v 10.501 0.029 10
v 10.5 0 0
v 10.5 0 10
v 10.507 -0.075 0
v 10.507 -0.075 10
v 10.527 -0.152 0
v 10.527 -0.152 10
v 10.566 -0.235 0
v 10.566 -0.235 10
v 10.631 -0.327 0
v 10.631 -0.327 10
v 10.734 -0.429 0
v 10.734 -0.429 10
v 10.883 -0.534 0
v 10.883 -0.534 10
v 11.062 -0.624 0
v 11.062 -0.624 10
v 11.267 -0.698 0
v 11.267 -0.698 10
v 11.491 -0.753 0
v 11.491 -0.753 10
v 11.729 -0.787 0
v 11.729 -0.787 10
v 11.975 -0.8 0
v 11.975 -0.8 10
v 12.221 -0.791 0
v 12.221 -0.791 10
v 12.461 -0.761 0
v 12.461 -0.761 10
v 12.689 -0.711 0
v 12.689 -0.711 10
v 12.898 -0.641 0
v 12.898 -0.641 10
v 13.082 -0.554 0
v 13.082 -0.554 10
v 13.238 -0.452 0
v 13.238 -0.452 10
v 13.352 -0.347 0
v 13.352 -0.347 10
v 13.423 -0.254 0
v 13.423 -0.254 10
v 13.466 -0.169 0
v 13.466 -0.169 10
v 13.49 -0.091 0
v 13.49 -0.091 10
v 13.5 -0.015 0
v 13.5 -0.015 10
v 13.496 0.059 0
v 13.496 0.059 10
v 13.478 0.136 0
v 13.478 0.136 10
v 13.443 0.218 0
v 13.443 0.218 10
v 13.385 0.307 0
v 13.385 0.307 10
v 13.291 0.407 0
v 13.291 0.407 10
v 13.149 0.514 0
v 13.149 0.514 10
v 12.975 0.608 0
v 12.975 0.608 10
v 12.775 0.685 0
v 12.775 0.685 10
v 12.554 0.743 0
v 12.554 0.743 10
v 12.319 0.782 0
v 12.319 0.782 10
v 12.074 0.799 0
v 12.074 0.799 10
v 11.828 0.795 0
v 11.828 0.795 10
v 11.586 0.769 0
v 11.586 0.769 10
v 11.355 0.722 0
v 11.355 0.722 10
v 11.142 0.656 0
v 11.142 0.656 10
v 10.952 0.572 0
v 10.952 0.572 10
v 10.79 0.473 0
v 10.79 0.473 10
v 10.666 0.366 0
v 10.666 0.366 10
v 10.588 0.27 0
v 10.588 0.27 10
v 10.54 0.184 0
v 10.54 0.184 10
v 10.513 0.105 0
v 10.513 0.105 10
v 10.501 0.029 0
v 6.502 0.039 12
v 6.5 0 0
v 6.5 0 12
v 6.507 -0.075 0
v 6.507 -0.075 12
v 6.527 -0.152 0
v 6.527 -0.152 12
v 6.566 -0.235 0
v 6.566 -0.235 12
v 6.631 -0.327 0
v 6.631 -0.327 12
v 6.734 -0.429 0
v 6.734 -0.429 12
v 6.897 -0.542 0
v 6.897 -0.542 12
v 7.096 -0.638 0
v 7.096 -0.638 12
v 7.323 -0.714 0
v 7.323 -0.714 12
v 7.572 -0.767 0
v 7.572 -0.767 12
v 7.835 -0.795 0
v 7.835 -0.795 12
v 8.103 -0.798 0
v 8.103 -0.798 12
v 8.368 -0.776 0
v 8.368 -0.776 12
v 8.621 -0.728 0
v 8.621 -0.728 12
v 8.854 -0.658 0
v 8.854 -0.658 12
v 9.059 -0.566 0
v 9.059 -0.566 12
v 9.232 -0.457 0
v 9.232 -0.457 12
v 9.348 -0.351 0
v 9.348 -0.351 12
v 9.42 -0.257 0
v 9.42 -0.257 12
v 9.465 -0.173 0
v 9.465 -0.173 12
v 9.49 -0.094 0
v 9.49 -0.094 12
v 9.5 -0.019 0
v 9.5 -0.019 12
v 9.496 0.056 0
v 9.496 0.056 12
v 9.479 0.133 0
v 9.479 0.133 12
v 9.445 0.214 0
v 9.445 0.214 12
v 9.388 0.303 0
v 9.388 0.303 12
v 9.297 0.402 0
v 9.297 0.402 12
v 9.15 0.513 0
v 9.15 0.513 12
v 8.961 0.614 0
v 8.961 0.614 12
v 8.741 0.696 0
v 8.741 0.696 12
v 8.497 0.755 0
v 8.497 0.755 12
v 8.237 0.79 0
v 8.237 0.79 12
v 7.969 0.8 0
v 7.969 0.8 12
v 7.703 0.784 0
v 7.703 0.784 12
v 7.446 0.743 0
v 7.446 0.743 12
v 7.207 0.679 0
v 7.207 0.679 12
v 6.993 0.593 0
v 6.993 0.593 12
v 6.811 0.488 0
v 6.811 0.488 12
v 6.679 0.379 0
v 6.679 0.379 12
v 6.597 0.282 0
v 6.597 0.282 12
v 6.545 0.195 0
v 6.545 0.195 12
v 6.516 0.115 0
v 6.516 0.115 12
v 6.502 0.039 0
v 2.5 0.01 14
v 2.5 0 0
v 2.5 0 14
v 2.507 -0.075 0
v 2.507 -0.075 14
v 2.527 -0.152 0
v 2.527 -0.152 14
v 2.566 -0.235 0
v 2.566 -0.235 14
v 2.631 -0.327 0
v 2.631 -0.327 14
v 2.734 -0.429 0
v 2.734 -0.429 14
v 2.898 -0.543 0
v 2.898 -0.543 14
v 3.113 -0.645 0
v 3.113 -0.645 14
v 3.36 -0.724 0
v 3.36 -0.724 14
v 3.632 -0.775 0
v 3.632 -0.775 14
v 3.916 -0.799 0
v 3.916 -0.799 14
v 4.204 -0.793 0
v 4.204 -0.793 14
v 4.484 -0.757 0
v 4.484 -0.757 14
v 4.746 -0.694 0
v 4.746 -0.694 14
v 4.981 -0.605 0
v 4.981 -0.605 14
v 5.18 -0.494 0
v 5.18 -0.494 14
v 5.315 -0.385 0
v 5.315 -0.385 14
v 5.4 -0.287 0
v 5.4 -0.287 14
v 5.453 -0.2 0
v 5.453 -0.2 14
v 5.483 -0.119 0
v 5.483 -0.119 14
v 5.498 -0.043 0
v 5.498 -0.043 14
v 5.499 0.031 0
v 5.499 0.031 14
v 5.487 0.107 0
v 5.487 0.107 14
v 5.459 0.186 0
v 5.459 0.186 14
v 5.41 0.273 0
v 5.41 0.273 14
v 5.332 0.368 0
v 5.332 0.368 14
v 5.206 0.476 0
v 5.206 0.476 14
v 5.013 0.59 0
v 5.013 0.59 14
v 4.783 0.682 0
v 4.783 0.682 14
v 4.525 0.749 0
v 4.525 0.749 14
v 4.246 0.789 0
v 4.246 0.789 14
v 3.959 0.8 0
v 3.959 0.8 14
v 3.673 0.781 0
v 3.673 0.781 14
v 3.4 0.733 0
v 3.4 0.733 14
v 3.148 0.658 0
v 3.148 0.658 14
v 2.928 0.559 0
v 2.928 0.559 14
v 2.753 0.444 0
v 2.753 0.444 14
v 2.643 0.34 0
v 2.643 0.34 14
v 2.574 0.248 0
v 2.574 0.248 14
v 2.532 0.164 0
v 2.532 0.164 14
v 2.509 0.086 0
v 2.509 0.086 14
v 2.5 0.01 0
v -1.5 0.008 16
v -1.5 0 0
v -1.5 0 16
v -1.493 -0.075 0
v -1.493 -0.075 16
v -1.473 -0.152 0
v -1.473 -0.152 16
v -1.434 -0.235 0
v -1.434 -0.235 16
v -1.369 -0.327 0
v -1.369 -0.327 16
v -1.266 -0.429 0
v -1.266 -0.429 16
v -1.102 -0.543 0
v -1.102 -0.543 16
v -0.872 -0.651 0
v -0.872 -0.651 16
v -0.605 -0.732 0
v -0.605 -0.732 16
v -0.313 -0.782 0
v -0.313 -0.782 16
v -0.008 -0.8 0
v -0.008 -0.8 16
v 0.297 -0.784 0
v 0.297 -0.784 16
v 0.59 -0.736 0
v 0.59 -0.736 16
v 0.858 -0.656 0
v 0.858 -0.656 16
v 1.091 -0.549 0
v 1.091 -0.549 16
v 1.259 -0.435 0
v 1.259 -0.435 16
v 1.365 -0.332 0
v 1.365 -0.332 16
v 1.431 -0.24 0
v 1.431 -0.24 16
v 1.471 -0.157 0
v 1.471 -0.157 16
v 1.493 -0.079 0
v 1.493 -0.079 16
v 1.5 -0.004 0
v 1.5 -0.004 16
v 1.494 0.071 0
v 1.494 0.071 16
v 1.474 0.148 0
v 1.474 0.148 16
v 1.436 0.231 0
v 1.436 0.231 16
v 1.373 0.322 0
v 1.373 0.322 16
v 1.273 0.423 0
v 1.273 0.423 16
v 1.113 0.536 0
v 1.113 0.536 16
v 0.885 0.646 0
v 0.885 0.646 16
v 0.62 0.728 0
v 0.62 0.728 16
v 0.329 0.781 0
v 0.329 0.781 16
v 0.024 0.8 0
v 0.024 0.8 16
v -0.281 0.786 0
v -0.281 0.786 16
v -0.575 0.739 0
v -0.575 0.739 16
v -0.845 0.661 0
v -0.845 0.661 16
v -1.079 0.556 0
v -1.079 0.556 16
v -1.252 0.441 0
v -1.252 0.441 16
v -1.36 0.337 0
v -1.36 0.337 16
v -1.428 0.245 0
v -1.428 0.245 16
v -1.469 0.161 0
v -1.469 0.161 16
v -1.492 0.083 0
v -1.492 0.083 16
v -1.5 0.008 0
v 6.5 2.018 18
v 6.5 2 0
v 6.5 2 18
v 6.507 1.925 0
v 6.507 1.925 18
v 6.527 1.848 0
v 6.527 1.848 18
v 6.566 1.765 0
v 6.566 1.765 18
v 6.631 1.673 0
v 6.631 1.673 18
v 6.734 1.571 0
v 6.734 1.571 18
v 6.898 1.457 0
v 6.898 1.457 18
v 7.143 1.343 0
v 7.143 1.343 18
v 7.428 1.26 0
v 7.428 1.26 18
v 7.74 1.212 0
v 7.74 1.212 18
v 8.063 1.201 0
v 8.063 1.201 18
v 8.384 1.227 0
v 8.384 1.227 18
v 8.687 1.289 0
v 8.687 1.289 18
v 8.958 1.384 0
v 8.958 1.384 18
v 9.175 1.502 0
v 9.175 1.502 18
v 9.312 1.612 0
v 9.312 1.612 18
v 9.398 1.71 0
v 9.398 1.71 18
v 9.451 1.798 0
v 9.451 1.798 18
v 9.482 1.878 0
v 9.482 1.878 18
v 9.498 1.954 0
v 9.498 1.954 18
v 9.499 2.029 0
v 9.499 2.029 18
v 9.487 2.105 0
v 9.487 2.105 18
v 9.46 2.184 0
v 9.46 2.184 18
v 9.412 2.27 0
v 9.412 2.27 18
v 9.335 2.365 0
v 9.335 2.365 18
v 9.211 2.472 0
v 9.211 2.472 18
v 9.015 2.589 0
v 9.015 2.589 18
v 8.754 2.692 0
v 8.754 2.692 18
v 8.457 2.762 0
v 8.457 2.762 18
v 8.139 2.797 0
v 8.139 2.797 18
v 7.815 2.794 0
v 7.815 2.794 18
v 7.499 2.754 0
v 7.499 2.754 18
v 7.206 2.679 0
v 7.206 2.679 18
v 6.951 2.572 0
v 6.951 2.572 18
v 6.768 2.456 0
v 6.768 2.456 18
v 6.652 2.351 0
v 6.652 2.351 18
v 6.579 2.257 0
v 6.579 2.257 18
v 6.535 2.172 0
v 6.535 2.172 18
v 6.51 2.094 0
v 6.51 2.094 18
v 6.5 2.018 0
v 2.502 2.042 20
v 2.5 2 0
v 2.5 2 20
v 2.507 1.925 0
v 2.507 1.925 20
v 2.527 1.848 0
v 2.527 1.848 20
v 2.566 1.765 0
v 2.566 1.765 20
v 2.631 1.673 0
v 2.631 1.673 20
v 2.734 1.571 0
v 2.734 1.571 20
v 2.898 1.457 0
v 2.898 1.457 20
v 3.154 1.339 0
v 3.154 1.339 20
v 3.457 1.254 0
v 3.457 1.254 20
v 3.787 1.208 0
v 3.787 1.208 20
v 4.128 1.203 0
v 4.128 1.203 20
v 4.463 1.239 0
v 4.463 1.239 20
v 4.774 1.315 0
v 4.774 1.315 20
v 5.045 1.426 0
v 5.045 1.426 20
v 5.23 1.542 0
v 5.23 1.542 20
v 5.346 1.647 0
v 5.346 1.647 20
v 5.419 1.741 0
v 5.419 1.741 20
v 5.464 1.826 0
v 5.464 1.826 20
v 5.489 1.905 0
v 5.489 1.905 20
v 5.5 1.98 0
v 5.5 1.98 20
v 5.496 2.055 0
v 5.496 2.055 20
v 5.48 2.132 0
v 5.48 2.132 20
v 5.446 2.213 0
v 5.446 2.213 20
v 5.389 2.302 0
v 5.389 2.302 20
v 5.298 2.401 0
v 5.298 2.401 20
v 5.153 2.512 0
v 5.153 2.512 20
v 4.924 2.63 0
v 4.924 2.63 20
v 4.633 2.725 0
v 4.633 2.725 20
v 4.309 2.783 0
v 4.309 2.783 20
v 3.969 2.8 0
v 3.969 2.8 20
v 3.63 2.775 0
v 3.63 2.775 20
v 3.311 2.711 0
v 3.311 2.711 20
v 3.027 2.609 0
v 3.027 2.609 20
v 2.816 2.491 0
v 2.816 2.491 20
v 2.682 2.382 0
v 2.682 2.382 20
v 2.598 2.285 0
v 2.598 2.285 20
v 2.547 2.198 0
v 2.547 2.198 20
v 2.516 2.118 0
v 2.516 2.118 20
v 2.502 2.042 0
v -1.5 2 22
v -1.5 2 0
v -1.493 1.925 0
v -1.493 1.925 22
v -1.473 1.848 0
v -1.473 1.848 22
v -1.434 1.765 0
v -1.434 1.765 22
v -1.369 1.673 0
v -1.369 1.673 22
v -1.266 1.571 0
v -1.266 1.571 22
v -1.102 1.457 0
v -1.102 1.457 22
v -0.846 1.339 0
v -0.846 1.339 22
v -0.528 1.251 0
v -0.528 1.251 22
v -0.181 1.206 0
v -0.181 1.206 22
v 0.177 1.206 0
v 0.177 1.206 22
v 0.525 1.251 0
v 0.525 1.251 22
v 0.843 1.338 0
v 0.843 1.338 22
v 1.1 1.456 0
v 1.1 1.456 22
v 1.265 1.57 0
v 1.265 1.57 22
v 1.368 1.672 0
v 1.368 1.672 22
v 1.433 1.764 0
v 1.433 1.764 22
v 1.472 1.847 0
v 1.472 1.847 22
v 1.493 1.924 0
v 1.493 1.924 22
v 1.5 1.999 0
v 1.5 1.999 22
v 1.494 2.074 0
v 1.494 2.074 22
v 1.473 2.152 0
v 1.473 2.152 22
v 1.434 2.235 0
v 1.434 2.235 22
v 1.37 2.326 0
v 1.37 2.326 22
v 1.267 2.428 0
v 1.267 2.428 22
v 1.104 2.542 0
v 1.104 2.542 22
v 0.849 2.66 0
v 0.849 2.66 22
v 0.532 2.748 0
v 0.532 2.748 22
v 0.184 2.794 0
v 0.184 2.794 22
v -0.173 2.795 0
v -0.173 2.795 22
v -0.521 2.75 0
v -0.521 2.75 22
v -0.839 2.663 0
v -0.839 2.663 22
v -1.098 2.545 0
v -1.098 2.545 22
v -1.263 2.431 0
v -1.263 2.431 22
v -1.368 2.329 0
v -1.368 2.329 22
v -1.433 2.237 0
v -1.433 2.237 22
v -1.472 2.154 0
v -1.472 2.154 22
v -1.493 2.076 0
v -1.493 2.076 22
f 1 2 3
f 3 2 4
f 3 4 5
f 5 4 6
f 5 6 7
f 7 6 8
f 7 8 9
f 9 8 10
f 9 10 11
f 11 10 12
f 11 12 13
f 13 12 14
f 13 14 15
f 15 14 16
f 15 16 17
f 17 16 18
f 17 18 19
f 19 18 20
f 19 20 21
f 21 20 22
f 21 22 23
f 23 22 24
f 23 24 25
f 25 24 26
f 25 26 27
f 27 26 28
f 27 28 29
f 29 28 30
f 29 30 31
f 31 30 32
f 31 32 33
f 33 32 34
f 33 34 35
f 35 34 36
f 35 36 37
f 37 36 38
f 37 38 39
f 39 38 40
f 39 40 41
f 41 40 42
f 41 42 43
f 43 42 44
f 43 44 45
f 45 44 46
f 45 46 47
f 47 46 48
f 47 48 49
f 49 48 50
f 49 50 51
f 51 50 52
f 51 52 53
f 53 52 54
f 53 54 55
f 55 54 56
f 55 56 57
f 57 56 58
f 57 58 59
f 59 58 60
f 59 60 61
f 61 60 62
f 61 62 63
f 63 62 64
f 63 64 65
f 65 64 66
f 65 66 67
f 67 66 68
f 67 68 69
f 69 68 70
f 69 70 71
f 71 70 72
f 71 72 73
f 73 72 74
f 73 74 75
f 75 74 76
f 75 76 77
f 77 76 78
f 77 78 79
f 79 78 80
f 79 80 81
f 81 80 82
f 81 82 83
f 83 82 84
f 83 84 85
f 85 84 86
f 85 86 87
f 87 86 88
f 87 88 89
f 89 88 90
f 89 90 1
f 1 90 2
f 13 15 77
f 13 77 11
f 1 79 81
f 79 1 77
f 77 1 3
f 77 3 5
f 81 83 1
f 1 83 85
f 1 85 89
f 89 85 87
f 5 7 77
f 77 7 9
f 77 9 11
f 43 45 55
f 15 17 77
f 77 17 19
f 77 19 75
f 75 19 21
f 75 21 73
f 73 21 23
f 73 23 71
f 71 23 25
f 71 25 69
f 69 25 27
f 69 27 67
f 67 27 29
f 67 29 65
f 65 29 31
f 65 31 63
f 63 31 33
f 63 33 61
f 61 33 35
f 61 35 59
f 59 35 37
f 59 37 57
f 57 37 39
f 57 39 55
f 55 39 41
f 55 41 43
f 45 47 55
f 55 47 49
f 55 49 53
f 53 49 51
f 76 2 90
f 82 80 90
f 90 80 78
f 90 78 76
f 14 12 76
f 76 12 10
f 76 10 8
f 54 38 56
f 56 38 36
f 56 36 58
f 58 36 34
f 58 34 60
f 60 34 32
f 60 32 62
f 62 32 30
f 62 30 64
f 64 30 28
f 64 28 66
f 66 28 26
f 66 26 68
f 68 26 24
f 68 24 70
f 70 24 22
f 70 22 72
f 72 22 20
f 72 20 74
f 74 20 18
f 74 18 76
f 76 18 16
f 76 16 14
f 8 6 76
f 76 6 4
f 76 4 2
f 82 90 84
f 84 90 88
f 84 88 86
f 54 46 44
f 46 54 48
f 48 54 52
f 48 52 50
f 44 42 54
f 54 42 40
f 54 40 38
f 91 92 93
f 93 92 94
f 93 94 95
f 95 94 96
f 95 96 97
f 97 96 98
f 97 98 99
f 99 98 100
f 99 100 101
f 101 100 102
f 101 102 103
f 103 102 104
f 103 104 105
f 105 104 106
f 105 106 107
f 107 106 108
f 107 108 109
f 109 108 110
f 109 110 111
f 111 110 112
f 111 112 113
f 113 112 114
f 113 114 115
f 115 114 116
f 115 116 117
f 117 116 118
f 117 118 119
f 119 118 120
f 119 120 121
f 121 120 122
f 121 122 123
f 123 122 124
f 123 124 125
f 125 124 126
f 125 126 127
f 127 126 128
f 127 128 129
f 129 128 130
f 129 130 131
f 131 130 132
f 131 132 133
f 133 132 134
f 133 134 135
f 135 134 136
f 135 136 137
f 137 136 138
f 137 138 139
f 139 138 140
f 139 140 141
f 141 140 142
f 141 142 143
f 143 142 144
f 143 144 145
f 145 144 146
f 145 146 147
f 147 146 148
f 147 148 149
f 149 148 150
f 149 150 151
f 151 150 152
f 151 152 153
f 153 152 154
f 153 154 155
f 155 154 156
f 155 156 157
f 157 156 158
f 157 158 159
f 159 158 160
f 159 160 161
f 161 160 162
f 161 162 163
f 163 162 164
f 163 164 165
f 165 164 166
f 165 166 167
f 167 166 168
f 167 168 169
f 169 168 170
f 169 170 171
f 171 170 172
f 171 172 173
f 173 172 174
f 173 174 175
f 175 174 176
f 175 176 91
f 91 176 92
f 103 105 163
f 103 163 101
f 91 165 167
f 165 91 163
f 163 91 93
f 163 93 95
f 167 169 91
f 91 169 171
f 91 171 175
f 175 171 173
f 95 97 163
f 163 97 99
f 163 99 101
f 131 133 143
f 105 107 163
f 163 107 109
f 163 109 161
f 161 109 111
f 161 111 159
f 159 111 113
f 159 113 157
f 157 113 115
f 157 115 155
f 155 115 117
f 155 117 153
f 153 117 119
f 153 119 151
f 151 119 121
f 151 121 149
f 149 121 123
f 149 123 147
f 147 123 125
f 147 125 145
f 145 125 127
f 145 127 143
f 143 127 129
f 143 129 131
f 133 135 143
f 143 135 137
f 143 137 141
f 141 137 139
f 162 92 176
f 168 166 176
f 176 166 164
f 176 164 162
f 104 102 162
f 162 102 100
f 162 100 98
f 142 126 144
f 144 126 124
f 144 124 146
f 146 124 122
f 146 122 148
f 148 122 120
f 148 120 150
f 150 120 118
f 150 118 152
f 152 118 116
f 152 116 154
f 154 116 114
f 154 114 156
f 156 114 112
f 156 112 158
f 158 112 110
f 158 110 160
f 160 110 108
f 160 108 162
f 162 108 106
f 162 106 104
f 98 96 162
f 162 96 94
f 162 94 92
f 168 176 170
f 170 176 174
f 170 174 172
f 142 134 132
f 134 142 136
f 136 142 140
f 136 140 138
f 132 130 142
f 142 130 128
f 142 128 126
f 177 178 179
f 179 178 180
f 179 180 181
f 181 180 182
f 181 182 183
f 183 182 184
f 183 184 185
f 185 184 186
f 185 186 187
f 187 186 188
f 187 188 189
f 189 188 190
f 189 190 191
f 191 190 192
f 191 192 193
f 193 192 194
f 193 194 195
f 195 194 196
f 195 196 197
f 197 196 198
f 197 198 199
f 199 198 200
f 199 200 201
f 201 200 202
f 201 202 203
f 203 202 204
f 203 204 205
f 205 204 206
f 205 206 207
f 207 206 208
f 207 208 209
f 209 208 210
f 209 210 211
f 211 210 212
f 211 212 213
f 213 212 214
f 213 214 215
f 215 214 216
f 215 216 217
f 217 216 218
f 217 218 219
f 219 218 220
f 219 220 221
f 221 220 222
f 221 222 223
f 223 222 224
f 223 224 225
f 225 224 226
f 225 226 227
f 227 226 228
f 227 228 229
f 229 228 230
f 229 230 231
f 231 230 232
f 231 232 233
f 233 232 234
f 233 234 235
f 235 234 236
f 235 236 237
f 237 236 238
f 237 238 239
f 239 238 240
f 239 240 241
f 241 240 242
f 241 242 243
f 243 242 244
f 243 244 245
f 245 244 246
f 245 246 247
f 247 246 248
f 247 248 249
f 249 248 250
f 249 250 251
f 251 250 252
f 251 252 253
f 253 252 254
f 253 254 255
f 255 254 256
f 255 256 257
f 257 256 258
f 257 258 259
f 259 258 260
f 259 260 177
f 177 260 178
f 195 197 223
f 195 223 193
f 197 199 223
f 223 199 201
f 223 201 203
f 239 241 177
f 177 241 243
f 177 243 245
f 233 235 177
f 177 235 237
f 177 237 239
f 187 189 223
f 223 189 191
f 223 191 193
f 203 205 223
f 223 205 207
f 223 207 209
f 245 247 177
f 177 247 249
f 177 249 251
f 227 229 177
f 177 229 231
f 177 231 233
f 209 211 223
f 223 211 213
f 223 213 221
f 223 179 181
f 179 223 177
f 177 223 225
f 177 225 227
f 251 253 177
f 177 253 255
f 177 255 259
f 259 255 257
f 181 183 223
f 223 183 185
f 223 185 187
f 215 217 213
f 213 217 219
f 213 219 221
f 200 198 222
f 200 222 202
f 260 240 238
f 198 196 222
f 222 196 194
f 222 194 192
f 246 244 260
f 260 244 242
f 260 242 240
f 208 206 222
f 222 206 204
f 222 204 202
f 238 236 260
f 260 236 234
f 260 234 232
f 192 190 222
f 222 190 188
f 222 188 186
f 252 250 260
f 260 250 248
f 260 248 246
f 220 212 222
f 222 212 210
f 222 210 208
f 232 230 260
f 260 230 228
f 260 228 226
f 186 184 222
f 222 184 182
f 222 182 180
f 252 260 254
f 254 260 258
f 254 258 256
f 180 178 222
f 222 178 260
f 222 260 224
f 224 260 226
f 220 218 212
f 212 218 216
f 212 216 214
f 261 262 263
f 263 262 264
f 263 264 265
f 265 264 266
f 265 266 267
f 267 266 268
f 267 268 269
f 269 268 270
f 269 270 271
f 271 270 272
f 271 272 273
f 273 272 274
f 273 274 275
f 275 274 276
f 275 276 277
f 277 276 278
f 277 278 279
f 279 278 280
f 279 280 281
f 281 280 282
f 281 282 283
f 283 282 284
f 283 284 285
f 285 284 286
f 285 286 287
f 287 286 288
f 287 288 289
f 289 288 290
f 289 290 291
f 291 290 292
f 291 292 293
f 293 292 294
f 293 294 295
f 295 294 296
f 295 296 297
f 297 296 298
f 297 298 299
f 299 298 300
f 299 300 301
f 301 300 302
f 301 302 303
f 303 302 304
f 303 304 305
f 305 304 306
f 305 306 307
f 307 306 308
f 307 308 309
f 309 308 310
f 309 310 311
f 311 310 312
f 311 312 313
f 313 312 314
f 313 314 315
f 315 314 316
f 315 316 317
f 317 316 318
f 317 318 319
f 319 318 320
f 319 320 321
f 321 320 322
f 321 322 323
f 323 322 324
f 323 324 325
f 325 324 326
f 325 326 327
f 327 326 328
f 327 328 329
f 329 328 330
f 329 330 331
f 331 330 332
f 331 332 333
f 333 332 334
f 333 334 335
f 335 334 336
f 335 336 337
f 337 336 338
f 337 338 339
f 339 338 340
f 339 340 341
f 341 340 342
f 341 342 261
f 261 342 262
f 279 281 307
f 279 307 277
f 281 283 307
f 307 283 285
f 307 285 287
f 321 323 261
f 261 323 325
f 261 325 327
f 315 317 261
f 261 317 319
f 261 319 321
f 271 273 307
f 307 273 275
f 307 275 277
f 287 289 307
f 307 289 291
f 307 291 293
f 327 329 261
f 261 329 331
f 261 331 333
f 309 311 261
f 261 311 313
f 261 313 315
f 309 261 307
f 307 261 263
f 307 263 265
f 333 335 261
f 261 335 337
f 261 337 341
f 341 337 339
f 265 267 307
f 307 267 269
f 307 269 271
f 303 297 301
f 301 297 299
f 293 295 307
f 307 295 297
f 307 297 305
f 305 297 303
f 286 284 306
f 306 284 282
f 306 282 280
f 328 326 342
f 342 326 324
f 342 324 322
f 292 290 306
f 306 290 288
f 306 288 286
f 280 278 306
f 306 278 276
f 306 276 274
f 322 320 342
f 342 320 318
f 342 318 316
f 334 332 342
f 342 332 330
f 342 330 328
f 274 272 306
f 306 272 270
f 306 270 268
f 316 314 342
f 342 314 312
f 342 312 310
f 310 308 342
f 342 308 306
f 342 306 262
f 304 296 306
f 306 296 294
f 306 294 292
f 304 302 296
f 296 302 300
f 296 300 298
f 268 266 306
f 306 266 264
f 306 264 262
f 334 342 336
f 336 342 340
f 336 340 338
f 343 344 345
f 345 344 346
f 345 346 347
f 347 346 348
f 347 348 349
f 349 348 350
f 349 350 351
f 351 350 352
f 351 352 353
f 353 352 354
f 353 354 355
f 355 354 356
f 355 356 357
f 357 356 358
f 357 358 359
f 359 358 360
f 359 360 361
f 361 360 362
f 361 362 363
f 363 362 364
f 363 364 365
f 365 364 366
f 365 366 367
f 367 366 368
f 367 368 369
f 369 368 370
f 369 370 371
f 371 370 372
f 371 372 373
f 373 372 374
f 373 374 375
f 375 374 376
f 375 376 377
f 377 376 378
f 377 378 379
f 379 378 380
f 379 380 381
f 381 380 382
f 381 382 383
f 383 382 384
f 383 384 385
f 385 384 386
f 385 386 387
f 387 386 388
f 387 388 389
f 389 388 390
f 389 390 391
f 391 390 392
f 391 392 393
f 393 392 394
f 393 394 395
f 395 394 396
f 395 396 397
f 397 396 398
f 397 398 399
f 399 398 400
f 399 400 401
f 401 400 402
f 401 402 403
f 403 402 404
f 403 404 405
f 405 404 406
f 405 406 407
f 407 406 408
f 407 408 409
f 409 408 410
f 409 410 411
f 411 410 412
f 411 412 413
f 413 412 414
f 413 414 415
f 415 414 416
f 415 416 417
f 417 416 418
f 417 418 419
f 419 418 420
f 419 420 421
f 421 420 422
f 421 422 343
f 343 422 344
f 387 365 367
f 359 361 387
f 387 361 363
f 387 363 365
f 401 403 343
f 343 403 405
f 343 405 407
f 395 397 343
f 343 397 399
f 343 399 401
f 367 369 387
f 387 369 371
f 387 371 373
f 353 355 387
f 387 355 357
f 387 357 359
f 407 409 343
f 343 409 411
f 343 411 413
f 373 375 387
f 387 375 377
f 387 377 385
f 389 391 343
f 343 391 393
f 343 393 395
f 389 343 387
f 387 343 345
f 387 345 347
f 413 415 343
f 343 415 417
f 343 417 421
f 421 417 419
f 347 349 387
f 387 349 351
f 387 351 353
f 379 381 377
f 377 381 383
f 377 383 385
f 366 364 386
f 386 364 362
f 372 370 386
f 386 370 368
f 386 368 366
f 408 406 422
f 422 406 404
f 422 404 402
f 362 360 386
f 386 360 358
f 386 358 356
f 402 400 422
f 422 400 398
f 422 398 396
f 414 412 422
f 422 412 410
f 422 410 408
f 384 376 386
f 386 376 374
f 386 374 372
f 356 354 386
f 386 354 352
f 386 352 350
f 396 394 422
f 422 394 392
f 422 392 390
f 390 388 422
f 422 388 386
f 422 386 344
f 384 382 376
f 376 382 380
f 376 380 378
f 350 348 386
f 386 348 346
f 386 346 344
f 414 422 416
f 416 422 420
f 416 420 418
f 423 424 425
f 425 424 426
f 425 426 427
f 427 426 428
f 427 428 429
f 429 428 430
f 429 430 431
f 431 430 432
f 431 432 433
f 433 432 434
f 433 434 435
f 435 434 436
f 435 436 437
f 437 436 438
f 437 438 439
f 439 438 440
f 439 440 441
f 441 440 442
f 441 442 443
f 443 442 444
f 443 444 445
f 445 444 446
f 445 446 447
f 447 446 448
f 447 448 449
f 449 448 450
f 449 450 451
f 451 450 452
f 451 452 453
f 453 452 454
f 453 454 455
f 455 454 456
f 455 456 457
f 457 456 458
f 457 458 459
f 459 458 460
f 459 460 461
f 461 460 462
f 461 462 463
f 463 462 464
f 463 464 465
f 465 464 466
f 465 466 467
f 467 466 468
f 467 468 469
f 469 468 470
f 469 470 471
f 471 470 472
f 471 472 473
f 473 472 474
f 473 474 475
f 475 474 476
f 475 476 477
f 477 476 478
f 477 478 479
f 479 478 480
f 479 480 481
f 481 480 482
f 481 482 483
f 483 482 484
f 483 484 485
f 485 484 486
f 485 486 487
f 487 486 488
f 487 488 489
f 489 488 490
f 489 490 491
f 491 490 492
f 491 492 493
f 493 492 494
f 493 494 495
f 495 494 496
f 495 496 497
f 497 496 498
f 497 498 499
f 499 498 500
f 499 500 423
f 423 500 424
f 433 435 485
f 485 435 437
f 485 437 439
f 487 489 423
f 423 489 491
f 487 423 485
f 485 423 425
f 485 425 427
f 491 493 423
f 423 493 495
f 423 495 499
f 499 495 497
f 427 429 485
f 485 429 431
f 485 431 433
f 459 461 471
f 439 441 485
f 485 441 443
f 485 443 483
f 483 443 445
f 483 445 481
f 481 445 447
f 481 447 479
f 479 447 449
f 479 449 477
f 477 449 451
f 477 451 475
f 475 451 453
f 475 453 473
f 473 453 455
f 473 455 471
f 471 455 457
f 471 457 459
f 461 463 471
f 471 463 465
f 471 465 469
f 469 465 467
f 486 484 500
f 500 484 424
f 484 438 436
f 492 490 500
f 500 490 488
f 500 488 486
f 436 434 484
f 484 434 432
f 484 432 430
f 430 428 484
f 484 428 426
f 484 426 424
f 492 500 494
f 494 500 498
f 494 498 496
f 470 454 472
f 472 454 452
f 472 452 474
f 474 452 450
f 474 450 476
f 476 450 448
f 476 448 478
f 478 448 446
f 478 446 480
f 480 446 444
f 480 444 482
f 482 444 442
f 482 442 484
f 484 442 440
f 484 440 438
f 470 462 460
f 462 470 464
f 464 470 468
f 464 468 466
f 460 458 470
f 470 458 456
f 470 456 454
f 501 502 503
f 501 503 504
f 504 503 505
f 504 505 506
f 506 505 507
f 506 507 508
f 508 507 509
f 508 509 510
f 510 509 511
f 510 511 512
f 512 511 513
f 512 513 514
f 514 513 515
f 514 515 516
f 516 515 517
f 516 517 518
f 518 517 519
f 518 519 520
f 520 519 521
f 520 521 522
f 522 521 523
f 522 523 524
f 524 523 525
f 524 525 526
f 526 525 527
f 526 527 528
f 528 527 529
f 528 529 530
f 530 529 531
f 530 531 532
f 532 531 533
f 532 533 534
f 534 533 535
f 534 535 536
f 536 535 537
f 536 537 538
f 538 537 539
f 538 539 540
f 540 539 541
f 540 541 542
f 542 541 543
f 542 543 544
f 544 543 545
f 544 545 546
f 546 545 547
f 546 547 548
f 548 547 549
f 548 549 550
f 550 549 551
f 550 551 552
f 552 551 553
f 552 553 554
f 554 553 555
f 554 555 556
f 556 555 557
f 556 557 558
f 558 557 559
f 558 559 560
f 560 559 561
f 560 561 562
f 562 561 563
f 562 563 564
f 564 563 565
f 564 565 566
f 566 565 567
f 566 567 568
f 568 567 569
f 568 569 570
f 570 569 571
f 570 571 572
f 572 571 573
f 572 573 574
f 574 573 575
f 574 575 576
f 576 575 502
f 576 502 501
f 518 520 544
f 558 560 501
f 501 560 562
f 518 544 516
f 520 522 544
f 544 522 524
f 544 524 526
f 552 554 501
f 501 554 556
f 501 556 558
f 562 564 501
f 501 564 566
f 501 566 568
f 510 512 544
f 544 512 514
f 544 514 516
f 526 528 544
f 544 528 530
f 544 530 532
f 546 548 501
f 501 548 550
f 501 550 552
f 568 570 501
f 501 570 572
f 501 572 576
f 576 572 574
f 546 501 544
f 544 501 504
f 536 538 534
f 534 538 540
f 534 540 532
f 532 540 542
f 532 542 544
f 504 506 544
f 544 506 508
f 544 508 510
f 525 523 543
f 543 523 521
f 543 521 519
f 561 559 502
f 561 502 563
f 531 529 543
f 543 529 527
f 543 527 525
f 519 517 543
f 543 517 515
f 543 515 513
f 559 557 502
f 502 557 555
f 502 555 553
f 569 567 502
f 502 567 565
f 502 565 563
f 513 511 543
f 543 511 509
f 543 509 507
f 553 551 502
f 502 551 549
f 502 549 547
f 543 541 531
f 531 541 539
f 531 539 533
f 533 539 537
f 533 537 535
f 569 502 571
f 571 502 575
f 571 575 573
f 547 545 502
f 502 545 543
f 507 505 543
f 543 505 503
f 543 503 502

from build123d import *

# Parameters (mm, degrees)
SKETCH2_RX          = 1.5
SKETCH2_RY          = 0.8
BOSS_EXTRUDE1_DEPTH = 10
SKETCH2_3_RX        = 1.5
SKETCH2_3_RY        = 0.8
BOSS_EXTRUDE2_DEPTH = 12
SKETCH2_4_RX        = 1.5
SKETCH2_4_RY        = 0.8
BOSS_EXTRUDE3_DEPTH = 14
SKETCH2_5_RX        = 1.5
SKETCH2_5_RY        = 0.8
BOSS_EXTRUDE4_DEPTH = 16
SKETCH2_6_RX        = 1.5
SKETCH2_6_RY        = 0.8
BOSS_EXTRUDE5_DEPTH = 18
SKETCH2_7_RX        = 1.5
SKETCH2_7_RY        = 0.8
BOSS_EXTRUDE6_DEPTH = 20
SKETCH2_8_RX        = 1.5
SKETCH2_8_RY        = 0.8
BOSS_EXTRUDE7_DEPTH = 22


with BuildPart() as part:
    # Sketch2 → Boss-Extrude1 (new body)
    with BuildSketch(Plane.XY):
        with Locations(Location((12, 0), (0, 0, 180))):
            Ellipse(SKETCH2_RX, SKETCH2_RY)
    extrude(amount=BOSS_EXTRUDE1_DEPTH)


with BuildPart() as body_2:
    # Sketch2<3> → Boss-Extrude2 (new body)
    with BuildSketch(Plane.XY):
        with Locations(Location((8, 0), (0, 0, 180))):
            Ellipse(SKETCH2_3_RX, SKETCH2_3_RY)
    extrude(amount=BOSS_EXTRUDE2_DEPTH)


with BuildPart() as body_3:
    # Sketch2<4> → Boss-Extrude3 (new body)
    with BuildSketch(Plane.XY):
        with Locations(Location((4, 0), (0, 0, 180))):
            Ellipse(SKETCH2_4_RX, SKETCH2_4_RY)
    extrude(amount=BOSS_EXTRUDE3_DEPTH)


with BuildPart() as body_4:
    # Sketch2<5> → Boss-Extrude4 (new body)
    with BuildSketch(Plane.XY):
        with Locations(Location((0, 0), (0, 0, 180))):
            Ellipse(SKETCH2_5_RX, SKETCH2_5_RY)
    extrude(amount=BOSS_EXTRUDE4_DEPTH)


with BuildPart() as body_5:
    # Sketch2<6> → Boss-Extrude5 (new body)
    with BuildSketch(Plane.XY):
        with Locations(Location((8, 2), (0, 0, 180))):
            Ellipse(SKETCH2_6_RX, SKETCH2_6_RY)
    extrude(amount=BOSS_EXTRUDE5_DEPTH)


with BuildPart() as body_6:
    # Sketch2<7> → Boss-Extrude6 (new body)
    with BuildSketch(Plane.XY):
        with Locations(Location((4, 2), (0, 0, 180))):
            Ellipse(SKETCH2_7_RX, SKETCH2_7_RY)
    extrude(amount=BOSS_EXTRUDE6_DEPTH)


with BuildPart() as body_7:
    # Sketch2<8> → Boss-Extrude7 (new body)
    with BuildSketch(Plane.XY):
        with Locations(Location((0, 2), (0, 0, 180))):
            Ellipse(SKETCH2_8_RX, SKETCH2_8_RY)
    extrude(amount=BOSS_EXTRUDE7_DEPTH)


solid = Compound([part.part, body_2.part, body_3.part, body_4.part, body_5.part, body_6.part, body_7.part])
